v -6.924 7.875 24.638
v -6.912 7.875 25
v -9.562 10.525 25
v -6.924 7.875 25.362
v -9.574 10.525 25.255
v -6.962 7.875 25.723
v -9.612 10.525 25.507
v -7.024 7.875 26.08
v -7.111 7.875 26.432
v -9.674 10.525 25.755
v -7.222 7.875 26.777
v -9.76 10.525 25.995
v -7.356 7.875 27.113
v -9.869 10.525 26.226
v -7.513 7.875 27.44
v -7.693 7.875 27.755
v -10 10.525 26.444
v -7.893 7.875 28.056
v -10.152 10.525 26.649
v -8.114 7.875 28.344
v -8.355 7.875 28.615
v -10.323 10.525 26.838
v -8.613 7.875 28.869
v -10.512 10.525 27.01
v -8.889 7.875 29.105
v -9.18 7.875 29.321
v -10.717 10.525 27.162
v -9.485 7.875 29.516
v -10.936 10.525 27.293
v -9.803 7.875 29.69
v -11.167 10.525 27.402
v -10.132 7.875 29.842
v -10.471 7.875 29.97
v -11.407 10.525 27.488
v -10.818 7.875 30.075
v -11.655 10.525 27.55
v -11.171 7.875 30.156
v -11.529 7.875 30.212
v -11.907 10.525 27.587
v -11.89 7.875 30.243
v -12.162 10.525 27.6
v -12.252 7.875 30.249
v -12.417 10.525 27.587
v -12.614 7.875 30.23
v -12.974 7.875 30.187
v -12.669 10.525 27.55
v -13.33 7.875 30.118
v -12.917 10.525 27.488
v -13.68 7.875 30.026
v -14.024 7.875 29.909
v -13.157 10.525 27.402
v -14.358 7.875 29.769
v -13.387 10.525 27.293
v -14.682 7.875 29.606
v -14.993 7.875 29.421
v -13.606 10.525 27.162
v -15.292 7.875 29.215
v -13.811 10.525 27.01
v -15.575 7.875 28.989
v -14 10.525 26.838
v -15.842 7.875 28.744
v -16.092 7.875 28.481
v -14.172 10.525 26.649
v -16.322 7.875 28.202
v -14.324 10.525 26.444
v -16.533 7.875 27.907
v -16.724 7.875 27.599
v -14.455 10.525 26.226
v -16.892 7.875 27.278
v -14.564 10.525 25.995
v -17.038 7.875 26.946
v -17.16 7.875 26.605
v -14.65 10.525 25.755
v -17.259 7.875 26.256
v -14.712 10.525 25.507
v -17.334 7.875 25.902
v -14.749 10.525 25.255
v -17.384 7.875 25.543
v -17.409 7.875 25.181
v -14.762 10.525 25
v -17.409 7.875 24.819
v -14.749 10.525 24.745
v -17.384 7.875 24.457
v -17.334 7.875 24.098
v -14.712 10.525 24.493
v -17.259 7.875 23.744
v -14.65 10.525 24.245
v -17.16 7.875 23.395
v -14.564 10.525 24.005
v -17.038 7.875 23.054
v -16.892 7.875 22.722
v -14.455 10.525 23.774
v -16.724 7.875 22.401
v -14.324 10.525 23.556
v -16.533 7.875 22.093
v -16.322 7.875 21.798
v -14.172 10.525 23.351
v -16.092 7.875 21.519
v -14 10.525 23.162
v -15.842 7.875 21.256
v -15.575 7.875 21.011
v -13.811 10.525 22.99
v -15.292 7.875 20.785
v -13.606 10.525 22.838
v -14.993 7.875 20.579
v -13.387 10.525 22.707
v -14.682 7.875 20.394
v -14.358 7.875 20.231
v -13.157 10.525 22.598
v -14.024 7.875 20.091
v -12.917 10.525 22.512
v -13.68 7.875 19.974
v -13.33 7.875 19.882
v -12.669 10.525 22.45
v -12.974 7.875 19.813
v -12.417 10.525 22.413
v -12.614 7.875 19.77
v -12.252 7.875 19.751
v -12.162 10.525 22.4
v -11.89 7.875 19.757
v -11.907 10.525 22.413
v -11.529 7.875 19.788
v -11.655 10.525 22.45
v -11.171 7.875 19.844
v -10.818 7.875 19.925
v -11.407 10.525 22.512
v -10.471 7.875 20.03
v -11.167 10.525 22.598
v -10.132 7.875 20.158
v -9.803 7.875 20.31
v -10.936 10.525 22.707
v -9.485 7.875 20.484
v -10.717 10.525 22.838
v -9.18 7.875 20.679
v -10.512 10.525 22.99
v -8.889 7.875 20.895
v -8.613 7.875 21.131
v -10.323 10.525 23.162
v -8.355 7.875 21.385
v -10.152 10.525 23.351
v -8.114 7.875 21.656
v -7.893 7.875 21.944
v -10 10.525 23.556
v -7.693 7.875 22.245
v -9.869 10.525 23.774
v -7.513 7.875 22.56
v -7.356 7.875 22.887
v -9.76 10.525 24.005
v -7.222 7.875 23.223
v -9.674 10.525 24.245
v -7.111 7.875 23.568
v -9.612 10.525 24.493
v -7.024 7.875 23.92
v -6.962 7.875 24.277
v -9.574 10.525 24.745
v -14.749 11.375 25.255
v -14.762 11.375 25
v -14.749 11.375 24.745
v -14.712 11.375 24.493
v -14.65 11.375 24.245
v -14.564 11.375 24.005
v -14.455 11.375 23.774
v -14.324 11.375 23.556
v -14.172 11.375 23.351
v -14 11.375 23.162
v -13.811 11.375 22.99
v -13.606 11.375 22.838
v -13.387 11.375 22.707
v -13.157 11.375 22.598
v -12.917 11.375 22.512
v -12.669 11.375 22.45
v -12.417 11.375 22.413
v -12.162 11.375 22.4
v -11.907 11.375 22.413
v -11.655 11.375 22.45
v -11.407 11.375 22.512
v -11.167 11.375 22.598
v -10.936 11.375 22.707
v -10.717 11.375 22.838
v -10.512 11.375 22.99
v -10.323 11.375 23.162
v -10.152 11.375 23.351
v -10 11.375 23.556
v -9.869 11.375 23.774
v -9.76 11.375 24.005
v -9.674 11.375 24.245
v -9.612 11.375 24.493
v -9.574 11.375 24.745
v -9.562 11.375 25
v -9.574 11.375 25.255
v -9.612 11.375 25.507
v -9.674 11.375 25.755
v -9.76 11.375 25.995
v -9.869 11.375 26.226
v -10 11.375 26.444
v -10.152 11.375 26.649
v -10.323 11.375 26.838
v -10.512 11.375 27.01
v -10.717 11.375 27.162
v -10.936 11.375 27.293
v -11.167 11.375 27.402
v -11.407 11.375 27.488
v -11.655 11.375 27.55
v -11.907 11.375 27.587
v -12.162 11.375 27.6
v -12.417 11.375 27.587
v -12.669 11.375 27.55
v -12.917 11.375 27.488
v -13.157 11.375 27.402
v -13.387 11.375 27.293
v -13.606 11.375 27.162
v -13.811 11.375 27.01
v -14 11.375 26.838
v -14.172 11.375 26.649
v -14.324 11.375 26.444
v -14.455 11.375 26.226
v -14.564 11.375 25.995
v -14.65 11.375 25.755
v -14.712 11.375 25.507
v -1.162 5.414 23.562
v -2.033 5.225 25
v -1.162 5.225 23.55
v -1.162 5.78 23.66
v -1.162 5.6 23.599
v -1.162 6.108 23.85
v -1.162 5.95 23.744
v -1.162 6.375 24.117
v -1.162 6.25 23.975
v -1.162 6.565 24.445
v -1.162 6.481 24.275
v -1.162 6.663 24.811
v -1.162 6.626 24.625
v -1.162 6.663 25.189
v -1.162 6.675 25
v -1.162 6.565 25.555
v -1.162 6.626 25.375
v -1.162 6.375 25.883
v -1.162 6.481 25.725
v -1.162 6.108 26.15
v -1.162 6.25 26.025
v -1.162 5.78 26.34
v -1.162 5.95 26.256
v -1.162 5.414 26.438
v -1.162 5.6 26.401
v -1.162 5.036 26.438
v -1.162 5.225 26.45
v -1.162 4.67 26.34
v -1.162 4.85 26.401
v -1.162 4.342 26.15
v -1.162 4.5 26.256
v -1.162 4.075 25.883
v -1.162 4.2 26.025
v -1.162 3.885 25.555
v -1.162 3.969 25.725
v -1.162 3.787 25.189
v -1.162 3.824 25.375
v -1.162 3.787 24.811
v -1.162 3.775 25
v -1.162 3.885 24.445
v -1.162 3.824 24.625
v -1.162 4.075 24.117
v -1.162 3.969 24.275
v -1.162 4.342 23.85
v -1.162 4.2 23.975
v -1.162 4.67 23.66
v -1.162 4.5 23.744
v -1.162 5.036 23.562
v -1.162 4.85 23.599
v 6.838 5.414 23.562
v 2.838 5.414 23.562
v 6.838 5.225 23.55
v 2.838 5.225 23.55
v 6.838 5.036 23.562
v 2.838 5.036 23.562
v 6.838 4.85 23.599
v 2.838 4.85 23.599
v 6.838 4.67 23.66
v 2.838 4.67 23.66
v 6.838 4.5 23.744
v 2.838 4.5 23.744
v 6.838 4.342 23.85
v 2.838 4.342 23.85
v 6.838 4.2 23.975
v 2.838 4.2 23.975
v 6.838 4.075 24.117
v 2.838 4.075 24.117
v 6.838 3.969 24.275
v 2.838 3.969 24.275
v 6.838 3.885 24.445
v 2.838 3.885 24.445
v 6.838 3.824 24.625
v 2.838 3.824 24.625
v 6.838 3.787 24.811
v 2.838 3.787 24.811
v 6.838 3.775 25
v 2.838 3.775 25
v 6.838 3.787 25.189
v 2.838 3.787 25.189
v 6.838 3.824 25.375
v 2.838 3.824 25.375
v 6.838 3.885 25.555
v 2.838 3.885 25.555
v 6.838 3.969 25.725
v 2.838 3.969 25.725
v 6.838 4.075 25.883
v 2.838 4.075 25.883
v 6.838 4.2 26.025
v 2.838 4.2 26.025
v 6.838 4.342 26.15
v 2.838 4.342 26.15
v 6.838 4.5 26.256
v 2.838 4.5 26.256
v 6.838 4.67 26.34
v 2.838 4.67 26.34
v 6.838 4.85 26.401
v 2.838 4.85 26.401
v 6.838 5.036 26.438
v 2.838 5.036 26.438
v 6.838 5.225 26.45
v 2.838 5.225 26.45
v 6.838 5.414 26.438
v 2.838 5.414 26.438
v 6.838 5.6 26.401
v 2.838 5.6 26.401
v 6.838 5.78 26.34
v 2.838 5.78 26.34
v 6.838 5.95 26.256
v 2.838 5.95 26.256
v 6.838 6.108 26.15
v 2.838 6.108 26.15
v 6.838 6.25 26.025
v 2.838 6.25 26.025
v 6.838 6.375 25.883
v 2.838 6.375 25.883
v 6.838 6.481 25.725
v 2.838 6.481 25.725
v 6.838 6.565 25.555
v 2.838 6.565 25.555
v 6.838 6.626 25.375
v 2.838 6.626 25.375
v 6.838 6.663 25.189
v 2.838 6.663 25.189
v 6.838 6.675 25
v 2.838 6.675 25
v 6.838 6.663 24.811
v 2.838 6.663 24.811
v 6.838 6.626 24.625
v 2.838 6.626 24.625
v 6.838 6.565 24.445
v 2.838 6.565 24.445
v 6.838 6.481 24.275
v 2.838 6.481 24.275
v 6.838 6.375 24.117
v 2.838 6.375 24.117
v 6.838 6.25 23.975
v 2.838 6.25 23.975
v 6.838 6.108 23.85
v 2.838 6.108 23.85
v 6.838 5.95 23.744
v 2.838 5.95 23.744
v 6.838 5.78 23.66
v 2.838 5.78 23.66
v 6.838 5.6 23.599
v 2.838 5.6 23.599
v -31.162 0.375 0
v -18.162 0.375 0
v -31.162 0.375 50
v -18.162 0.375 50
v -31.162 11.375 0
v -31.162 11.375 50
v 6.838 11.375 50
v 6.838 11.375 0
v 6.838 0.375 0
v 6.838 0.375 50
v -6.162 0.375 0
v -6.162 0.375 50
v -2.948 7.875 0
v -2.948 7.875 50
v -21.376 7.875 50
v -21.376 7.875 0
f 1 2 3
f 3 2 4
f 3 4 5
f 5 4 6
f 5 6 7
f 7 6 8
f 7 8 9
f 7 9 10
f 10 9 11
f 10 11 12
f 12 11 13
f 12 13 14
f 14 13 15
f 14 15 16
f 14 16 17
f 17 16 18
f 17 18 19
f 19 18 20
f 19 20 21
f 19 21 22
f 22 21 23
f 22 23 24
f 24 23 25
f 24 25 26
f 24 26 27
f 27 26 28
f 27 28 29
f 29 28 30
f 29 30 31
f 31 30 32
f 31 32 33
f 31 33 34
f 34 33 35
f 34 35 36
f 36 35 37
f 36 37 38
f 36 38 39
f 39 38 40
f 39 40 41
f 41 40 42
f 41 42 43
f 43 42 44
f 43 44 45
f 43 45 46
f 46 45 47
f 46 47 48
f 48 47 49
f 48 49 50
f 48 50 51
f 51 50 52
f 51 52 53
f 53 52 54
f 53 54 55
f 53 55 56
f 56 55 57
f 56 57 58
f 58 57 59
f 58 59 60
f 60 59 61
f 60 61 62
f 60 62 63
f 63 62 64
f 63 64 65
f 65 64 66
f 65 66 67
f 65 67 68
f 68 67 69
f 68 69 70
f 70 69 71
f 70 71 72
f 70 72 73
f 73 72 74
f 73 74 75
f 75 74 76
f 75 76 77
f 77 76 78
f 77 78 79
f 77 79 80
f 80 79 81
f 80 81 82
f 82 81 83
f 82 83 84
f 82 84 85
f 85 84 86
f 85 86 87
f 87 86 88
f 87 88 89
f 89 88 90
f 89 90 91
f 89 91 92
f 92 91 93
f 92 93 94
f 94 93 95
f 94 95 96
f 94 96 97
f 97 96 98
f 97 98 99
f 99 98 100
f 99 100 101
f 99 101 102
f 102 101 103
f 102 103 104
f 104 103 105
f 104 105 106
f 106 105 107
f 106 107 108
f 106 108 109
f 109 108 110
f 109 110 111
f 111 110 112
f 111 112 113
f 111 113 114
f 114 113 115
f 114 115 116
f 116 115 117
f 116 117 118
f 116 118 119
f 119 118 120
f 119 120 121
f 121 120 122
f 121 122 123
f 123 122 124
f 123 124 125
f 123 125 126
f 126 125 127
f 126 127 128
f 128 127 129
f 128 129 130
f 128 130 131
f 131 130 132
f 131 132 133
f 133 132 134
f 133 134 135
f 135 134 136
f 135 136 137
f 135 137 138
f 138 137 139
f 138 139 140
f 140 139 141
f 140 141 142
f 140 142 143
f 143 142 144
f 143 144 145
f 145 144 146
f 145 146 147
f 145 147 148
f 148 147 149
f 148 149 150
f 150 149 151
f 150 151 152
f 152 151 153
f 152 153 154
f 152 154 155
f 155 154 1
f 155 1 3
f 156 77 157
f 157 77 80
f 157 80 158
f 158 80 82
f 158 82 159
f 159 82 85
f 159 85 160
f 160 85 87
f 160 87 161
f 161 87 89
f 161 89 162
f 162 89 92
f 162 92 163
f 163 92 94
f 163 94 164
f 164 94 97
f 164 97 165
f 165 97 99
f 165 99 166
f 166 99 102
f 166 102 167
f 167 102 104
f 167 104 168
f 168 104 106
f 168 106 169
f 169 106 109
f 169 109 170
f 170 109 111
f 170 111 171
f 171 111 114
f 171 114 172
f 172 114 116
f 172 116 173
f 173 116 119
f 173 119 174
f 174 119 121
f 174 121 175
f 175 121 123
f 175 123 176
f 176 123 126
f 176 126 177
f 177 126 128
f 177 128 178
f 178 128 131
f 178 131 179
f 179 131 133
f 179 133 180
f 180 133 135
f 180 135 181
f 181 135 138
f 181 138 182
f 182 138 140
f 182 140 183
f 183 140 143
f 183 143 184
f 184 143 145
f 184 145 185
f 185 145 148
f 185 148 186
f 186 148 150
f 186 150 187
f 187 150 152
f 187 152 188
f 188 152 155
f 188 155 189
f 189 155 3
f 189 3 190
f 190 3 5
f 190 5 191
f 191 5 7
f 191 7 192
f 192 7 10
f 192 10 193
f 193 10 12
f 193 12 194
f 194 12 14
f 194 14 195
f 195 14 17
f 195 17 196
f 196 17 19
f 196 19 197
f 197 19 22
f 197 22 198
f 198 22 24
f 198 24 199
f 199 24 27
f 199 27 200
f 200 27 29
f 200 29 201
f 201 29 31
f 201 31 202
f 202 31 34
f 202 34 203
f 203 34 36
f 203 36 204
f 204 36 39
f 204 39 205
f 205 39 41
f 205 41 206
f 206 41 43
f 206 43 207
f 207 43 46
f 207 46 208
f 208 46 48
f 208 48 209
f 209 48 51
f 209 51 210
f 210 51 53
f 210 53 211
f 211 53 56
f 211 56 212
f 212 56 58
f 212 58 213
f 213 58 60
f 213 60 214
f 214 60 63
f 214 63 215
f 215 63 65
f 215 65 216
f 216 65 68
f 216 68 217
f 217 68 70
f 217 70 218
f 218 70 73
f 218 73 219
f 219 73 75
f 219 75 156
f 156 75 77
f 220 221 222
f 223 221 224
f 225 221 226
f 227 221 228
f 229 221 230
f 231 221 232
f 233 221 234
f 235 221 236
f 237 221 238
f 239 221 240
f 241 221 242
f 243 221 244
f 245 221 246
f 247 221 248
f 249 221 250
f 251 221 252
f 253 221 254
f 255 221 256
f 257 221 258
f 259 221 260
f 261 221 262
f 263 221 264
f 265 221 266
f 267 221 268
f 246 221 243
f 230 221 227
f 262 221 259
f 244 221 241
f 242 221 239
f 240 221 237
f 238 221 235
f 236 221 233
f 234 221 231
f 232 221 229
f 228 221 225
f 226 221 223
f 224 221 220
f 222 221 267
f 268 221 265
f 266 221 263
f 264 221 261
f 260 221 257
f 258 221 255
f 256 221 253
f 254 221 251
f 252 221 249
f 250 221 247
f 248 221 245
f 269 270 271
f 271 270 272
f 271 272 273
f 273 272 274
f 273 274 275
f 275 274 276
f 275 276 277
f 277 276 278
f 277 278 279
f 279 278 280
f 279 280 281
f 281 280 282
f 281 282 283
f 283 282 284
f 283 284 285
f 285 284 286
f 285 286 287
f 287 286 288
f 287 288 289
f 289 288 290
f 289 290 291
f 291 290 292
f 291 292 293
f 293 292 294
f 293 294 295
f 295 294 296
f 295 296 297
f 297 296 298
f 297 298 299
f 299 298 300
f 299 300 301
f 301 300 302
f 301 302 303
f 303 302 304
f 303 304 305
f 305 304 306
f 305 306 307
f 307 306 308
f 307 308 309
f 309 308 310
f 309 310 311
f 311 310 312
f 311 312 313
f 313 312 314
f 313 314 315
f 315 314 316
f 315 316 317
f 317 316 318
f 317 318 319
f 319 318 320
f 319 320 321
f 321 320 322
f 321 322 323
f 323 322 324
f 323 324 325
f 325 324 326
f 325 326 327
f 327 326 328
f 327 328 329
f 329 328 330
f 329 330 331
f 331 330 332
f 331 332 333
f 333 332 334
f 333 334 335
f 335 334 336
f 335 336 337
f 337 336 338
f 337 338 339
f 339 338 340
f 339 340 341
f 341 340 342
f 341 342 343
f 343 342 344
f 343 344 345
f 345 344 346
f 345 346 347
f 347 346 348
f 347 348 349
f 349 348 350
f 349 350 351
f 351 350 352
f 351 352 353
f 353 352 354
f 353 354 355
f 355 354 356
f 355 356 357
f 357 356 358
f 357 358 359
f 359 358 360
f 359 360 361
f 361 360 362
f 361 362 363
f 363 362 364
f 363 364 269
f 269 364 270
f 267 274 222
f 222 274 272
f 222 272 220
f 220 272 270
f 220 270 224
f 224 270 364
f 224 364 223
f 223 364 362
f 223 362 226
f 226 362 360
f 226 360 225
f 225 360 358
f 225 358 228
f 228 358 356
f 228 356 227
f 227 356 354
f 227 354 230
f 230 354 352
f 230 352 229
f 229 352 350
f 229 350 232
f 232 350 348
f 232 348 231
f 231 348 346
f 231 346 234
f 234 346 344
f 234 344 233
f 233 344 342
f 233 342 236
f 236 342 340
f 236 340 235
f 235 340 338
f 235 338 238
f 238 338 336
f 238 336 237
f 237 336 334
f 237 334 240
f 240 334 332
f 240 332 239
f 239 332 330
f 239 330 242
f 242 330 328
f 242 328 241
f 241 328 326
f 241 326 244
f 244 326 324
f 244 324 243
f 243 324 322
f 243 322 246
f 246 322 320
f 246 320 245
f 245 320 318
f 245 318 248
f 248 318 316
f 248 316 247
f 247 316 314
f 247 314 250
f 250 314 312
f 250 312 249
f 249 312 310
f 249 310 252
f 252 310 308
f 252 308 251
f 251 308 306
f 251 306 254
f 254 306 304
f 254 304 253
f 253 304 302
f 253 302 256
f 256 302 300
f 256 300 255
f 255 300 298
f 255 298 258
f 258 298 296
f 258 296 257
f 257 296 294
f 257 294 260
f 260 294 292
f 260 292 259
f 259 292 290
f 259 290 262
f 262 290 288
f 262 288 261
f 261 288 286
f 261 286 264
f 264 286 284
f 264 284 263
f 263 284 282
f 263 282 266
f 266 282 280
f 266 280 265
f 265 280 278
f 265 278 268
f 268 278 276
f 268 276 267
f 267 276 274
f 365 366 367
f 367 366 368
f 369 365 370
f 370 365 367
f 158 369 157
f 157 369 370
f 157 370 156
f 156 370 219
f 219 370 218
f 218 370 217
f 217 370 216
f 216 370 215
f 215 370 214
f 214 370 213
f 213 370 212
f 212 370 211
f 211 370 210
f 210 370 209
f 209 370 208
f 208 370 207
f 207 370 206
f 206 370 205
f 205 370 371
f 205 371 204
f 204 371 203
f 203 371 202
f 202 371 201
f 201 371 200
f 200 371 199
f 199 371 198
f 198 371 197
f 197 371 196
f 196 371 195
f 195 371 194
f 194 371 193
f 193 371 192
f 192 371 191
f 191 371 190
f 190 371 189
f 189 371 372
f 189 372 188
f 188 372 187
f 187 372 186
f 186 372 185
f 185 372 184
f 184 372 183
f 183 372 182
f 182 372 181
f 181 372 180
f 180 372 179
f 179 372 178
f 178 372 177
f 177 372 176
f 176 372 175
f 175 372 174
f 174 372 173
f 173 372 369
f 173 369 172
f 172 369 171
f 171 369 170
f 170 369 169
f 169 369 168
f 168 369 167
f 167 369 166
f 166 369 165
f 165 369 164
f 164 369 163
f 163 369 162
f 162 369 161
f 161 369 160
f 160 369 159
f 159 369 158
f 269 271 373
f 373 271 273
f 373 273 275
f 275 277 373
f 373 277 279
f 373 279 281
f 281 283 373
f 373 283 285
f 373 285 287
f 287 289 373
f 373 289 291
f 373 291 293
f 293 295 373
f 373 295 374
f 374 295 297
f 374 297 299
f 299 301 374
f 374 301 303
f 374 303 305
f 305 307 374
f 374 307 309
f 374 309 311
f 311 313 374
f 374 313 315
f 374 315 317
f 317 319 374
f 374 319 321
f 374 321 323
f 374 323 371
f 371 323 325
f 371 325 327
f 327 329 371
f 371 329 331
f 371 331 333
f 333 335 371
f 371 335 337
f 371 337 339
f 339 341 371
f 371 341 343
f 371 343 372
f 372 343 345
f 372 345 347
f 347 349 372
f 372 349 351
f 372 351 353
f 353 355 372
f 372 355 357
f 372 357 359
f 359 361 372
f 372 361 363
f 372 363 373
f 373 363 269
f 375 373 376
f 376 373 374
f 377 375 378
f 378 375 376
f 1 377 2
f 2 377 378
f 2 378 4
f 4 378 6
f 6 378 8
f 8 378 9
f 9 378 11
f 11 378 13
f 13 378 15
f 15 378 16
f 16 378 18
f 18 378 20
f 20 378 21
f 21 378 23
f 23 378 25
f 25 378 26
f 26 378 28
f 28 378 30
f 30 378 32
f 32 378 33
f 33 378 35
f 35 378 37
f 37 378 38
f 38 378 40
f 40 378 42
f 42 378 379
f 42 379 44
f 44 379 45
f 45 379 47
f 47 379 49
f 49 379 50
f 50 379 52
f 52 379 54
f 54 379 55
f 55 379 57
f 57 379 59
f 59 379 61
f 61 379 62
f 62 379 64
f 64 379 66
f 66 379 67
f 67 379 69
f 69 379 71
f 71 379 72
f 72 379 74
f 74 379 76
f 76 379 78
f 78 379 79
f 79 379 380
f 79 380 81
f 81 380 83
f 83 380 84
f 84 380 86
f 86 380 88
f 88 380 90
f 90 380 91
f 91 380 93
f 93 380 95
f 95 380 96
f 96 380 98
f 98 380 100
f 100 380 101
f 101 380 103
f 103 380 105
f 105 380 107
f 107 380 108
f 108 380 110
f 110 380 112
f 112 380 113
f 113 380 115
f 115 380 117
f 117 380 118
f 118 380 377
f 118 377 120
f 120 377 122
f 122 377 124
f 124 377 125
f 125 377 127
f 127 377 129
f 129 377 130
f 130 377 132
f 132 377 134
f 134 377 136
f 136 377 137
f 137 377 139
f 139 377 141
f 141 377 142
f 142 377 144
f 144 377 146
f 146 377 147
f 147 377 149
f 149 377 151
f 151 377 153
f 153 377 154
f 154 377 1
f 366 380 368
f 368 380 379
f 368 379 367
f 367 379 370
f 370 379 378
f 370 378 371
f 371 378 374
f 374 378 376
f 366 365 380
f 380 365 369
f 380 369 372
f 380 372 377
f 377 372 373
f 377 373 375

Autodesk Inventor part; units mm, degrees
ref_plane "YZ Plane" through (0, 0, 0) normal (1, 0, 0) x (0, 1, 0)
ref_plane "XZ Plane" through (0, 0, 0) normal (0, 1, 0) x (-1, 0, 0)
ref_plane "XY Plane" through (0, 0, 0) normal (0, 0, 1) x (1, 0, 0)
sketch "Skizze1" plane through (0, 0, 0) normal (0, 0, 1) x (1, 0, 0)
  line L0 (-18.1618, 0.375) -> (-21.3761, 7.875)
  line L1 (-2.9476, 7.875) -> (-6.1618, 0.375)
  line L2 (-6.1618, 0.375) -> (-18.1618, 0.375)
  line L3 (-18.1618, 0.375) -> (-31.1618, 0.375)
  line L4 (-31.1618, 0.375) -> (-31.1618, 11.375)
  line L5 (-31.1618, 11.375) -> (6.8382, 11.375)
  line L6 (6.8382, 11.375) -> (6.8382, 0.375)
  line L7 (6.8382, 0.375) -> (-6.1618, 0.375)
  line L8 (-21.5376, 7.875) -> (-2.9476, 7.875)
  point P0 (0, 0)
  point P1 (-21.1618, 7.375)
  point P2 (-3.1618, 7.375)
  dimension "d10" = 38
  dimension "d14" = 12
  dimension "d29" = 13
extrude "Extrusion1" add sketch "Skizze1" along normal blind 50 contours L3 L4 L5 L6 L7 L1 L8 L0
sketch "Skizze2" plane through (6.8382, 0.375, 0) normal (1, 0, 0) x (0, 0, -1)
  line L0 (-50, 0) -> (-50, 11) projected
  line L1 (0, 11) -> (-50, 11) projected
  point P0 (0, -0.375)
  point P1 (-25, 4.85)
  dimension "d19" = 6.15
hole "Bohrung1" at (6.8382, 5.225, 25) direction (-1, 0, 0) diameter 2.9 depth 8 tip angle 118
sketch "Skizze3" plane through (-21.3761, 7.875, 0) normal (0, -1, 0) x (1, 0, 0)
  line L0 (0, 50) -> (18.4286, 50) projected
  line L1 (28.2143, 0) -> (28.2143, 50) projected
  point P0 (21.3761, 0)
sketch "Skizze4" plane through (-21.3761, 7.875, 0) normal (0, -1, 0) x (1, 0, 0)
  line L0 (0, 50) -> (18.4286, 50) projected
  line L1 (28.2143, 0) -> (28.2143, 50) projected
  point P0 (21.3761, 0)
  point P1 (9.2143, 25)
  dimension "d30" = 25
  dimension "d31" = 19
hole "Bohrung2" at (-12.1618, 7.875, 25) direction (0, 1, 0) diameter 5.2 end through all countersink diameter 10.5 countersink angle 90
properties part number "Schienenläuderaufsatz-22.11"
